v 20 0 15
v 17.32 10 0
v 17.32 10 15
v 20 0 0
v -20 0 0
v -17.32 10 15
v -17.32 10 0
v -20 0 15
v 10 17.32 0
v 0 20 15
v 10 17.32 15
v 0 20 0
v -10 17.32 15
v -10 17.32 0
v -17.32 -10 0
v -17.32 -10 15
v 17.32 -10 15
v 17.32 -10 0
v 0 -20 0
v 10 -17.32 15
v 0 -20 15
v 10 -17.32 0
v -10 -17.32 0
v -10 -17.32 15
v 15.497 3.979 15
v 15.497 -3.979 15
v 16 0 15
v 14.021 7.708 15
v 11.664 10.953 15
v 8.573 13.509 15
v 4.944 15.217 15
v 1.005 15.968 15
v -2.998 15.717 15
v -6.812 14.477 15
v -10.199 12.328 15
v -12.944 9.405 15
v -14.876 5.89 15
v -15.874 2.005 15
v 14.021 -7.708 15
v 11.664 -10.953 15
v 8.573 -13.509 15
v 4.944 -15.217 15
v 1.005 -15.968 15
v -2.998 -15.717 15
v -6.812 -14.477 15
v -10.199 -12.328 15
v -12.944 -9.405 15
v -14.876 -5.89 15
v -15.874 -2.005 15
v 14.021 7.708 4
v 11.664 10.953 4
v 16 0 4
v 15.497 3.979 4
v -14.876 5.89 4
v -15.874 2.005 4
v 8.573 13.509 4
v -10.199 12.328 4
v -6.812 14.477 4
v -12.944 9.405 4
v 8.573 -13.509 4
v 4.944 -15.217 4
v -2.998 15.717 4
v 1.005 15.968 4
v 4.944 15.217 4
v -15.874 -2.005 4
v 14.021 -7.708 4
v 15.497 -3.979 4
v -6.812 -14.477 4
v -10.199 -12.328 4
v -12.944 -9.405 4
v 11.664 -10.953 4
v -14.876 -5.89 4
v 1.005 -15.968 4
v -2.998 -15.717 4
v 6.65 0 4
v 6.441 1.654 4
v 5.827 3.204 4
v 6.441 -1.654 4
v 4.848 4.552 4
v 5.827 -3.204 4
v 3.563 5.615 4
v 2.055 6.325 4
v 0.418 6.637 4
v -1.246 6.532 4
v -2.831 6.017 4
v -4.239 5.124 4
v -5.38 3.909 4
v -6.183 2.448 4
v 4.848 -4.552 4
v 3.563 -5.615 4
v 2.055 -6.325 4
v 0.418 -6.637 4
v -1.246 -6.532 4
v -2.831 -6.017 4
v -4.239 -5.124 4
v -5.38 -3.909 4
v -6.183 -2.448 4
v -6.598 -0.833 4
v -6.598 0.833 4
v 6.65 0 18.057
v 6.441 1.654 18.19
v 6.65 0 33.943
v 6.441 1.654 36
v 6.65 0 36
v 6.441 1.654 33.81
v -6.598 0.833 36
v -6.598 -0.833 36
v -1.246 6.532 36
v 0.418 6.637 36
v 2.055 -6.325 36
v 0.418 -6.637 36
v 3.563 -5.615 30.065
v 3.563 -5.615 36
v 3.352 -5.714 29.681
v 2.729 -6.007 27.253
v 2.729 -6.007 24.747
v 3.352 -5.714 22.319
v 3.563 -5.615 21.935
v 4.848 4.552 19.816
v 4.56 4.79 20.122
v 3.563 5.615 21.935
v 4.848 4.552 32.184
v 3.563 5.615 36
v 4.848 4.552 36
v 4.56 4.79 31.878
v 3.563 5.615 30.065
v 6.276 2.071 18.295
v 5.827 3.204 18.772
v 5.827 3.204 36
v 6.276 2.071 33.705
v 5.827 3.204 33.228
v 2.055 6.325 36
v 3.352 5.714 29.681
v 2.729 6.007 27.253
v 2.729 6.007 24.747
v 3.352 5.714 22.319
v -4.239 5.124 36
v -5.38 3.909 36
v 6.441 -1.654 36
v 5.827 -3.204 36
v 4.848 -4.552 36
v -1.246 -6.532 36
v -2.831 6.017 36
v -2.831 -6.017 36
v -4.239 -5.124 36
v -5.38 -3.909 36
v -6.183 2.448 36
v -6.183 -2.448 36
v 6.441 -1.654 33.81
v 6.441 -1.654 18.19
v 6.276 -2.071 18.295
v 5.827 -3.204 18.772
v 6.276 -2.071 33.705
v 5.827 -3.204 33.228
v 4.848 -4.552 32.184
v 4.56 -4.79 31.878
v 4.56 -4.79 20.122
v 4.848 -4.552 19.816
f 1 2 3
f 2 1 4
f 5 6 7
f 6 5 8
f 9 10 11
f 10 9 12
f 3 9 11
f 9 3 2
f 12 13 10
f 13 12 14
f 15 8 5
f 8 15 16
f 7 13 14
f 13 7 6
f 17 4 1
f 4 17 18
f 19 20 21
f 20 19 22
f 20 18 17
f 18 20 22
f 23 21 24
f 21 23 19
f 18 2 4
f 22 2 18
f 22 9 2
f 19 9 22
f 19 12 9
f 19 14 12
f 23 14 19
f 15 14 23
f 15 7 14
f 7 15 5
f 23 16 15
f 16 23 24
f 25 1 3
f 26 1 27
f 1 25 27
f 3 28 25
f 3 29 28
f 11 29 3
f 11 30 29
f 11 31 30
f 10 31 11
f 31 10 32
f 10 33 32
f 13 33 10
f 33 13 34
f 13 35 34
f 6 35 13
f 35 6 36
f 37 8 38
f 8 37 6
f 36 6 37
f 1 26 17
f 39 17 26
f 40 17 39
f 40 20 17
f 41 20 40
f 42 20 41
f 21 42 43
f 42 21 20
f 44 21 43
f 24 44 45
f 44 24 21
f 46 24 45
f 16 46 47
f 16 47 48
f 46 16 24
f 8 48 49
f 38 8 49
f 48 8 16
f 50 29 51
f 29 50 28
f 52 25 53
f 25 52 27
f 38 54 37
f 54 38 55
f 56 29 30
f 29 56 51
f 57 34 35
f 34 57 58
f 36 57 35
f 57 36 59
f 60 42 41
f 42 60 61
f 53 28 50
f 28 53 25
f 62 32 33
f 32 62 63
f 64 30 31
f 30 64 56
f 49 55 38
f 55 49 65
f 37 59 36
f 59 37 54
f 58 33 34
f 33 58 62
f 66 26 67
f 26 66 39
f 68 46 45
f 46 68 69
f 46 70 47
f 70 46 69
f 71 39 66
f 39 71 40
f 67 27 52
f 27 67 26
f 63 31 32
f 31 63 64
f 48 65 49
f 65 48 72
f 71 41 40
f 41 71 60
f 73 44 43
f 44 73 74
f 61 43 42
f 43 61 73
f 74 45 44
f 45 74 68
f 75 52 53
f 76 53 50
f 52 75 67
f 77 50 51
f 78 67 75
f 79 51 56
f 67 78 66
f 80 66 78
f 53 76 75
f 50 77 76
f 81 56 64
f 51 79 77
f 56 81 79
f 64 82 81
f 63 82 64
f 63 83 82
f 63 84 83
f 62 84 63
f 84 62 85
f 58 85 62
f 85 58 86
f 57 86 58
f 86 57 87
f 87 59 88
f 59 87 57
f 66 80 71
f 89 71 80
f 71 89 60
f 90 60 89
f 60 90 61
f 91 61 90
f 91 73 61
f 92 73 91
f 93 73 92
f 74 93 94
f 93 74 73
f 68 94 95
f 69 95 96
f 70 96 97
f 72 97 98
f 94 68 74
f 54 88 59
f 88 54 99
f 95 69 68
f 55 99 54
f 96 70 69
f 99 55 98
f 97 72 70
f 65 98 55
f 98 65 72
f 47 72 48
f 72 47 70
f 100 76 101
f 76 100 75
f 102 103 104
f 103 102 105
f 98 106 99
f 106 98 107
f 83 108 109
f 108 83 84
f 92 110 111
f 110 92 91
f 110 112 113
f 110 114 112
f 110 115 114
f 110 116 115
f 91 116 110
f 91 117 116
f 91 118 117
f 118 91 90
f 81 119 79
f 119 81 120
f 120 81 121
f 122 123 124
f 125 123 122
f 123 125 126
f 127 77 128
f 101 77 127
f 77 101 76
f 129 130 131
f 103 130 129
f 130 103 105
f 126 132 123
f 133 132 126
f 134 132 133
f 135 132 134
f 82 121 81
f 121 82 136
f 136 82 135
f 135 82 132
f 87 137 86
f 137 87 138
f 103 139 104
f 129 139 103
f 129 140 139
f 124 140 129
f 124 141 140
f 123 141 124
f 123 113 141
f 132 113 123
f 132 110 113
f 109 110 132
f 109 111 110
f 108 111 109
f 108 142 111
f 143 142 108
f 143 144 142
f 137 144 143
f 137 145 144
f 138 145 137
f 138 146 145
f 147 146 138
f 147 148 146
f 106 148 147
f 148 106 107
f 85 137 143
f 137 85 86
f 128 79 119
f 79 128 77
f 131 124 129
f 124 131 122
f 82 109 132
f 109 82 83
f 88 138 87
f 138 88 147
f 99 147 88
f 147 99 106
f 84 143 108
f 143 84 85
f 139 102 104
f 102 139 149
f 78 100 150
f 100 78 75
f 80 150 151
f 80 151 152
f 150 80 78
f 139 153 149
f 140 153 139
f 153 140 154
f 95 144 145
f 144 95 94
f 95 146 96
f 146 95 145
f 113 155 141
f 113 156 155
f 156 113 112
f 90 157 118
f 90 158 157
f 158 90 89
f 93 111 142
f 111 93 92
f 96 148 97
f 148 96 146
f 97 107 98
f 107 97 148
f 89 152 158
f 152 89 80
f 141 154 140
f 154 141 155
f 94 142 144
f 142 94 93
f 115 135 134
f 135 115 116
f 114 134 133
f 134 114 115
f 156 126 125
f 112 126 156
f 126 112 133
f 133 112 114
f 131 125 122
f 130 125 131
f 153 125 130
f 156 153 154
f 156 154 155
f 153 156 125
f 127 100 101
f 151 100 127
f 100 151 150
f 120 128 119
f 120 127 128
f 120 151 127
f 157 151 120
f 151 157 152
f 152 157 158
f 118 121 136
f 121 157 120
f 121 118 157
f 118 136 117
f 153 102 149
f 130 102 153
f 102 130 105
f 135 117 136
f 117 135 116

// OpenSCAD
knob_dia = 40.0;
knob_height = 15.0;
knob_wall = 4.0;

post_dia = 13.8 - 0.5;
post_height = 32.0;

pipe_off_x = 6.5 - 0.5;
pipe_off_z = 22.0;
pipe_dia = 20.0;

$fn = 25;

difference() {
    cylinder(d = knob_dia, h = knob_height, $fn = 12);
    
    translate([0, 0, knob_wall])
    cylinder(d = knob_dia - knob_wall * 2, h = knob_height);
}

difference() {
    translate([0, 0, knob_wall])
    cylinder(d = post_dia, h = post_height);

    translate([post_dia / 2 + pipe_off_x, 10, knob_wall + pipe_off_z])
    rotate([90, 0, 0])
    cylinder(d = pipe_dia, h = 20);
}
